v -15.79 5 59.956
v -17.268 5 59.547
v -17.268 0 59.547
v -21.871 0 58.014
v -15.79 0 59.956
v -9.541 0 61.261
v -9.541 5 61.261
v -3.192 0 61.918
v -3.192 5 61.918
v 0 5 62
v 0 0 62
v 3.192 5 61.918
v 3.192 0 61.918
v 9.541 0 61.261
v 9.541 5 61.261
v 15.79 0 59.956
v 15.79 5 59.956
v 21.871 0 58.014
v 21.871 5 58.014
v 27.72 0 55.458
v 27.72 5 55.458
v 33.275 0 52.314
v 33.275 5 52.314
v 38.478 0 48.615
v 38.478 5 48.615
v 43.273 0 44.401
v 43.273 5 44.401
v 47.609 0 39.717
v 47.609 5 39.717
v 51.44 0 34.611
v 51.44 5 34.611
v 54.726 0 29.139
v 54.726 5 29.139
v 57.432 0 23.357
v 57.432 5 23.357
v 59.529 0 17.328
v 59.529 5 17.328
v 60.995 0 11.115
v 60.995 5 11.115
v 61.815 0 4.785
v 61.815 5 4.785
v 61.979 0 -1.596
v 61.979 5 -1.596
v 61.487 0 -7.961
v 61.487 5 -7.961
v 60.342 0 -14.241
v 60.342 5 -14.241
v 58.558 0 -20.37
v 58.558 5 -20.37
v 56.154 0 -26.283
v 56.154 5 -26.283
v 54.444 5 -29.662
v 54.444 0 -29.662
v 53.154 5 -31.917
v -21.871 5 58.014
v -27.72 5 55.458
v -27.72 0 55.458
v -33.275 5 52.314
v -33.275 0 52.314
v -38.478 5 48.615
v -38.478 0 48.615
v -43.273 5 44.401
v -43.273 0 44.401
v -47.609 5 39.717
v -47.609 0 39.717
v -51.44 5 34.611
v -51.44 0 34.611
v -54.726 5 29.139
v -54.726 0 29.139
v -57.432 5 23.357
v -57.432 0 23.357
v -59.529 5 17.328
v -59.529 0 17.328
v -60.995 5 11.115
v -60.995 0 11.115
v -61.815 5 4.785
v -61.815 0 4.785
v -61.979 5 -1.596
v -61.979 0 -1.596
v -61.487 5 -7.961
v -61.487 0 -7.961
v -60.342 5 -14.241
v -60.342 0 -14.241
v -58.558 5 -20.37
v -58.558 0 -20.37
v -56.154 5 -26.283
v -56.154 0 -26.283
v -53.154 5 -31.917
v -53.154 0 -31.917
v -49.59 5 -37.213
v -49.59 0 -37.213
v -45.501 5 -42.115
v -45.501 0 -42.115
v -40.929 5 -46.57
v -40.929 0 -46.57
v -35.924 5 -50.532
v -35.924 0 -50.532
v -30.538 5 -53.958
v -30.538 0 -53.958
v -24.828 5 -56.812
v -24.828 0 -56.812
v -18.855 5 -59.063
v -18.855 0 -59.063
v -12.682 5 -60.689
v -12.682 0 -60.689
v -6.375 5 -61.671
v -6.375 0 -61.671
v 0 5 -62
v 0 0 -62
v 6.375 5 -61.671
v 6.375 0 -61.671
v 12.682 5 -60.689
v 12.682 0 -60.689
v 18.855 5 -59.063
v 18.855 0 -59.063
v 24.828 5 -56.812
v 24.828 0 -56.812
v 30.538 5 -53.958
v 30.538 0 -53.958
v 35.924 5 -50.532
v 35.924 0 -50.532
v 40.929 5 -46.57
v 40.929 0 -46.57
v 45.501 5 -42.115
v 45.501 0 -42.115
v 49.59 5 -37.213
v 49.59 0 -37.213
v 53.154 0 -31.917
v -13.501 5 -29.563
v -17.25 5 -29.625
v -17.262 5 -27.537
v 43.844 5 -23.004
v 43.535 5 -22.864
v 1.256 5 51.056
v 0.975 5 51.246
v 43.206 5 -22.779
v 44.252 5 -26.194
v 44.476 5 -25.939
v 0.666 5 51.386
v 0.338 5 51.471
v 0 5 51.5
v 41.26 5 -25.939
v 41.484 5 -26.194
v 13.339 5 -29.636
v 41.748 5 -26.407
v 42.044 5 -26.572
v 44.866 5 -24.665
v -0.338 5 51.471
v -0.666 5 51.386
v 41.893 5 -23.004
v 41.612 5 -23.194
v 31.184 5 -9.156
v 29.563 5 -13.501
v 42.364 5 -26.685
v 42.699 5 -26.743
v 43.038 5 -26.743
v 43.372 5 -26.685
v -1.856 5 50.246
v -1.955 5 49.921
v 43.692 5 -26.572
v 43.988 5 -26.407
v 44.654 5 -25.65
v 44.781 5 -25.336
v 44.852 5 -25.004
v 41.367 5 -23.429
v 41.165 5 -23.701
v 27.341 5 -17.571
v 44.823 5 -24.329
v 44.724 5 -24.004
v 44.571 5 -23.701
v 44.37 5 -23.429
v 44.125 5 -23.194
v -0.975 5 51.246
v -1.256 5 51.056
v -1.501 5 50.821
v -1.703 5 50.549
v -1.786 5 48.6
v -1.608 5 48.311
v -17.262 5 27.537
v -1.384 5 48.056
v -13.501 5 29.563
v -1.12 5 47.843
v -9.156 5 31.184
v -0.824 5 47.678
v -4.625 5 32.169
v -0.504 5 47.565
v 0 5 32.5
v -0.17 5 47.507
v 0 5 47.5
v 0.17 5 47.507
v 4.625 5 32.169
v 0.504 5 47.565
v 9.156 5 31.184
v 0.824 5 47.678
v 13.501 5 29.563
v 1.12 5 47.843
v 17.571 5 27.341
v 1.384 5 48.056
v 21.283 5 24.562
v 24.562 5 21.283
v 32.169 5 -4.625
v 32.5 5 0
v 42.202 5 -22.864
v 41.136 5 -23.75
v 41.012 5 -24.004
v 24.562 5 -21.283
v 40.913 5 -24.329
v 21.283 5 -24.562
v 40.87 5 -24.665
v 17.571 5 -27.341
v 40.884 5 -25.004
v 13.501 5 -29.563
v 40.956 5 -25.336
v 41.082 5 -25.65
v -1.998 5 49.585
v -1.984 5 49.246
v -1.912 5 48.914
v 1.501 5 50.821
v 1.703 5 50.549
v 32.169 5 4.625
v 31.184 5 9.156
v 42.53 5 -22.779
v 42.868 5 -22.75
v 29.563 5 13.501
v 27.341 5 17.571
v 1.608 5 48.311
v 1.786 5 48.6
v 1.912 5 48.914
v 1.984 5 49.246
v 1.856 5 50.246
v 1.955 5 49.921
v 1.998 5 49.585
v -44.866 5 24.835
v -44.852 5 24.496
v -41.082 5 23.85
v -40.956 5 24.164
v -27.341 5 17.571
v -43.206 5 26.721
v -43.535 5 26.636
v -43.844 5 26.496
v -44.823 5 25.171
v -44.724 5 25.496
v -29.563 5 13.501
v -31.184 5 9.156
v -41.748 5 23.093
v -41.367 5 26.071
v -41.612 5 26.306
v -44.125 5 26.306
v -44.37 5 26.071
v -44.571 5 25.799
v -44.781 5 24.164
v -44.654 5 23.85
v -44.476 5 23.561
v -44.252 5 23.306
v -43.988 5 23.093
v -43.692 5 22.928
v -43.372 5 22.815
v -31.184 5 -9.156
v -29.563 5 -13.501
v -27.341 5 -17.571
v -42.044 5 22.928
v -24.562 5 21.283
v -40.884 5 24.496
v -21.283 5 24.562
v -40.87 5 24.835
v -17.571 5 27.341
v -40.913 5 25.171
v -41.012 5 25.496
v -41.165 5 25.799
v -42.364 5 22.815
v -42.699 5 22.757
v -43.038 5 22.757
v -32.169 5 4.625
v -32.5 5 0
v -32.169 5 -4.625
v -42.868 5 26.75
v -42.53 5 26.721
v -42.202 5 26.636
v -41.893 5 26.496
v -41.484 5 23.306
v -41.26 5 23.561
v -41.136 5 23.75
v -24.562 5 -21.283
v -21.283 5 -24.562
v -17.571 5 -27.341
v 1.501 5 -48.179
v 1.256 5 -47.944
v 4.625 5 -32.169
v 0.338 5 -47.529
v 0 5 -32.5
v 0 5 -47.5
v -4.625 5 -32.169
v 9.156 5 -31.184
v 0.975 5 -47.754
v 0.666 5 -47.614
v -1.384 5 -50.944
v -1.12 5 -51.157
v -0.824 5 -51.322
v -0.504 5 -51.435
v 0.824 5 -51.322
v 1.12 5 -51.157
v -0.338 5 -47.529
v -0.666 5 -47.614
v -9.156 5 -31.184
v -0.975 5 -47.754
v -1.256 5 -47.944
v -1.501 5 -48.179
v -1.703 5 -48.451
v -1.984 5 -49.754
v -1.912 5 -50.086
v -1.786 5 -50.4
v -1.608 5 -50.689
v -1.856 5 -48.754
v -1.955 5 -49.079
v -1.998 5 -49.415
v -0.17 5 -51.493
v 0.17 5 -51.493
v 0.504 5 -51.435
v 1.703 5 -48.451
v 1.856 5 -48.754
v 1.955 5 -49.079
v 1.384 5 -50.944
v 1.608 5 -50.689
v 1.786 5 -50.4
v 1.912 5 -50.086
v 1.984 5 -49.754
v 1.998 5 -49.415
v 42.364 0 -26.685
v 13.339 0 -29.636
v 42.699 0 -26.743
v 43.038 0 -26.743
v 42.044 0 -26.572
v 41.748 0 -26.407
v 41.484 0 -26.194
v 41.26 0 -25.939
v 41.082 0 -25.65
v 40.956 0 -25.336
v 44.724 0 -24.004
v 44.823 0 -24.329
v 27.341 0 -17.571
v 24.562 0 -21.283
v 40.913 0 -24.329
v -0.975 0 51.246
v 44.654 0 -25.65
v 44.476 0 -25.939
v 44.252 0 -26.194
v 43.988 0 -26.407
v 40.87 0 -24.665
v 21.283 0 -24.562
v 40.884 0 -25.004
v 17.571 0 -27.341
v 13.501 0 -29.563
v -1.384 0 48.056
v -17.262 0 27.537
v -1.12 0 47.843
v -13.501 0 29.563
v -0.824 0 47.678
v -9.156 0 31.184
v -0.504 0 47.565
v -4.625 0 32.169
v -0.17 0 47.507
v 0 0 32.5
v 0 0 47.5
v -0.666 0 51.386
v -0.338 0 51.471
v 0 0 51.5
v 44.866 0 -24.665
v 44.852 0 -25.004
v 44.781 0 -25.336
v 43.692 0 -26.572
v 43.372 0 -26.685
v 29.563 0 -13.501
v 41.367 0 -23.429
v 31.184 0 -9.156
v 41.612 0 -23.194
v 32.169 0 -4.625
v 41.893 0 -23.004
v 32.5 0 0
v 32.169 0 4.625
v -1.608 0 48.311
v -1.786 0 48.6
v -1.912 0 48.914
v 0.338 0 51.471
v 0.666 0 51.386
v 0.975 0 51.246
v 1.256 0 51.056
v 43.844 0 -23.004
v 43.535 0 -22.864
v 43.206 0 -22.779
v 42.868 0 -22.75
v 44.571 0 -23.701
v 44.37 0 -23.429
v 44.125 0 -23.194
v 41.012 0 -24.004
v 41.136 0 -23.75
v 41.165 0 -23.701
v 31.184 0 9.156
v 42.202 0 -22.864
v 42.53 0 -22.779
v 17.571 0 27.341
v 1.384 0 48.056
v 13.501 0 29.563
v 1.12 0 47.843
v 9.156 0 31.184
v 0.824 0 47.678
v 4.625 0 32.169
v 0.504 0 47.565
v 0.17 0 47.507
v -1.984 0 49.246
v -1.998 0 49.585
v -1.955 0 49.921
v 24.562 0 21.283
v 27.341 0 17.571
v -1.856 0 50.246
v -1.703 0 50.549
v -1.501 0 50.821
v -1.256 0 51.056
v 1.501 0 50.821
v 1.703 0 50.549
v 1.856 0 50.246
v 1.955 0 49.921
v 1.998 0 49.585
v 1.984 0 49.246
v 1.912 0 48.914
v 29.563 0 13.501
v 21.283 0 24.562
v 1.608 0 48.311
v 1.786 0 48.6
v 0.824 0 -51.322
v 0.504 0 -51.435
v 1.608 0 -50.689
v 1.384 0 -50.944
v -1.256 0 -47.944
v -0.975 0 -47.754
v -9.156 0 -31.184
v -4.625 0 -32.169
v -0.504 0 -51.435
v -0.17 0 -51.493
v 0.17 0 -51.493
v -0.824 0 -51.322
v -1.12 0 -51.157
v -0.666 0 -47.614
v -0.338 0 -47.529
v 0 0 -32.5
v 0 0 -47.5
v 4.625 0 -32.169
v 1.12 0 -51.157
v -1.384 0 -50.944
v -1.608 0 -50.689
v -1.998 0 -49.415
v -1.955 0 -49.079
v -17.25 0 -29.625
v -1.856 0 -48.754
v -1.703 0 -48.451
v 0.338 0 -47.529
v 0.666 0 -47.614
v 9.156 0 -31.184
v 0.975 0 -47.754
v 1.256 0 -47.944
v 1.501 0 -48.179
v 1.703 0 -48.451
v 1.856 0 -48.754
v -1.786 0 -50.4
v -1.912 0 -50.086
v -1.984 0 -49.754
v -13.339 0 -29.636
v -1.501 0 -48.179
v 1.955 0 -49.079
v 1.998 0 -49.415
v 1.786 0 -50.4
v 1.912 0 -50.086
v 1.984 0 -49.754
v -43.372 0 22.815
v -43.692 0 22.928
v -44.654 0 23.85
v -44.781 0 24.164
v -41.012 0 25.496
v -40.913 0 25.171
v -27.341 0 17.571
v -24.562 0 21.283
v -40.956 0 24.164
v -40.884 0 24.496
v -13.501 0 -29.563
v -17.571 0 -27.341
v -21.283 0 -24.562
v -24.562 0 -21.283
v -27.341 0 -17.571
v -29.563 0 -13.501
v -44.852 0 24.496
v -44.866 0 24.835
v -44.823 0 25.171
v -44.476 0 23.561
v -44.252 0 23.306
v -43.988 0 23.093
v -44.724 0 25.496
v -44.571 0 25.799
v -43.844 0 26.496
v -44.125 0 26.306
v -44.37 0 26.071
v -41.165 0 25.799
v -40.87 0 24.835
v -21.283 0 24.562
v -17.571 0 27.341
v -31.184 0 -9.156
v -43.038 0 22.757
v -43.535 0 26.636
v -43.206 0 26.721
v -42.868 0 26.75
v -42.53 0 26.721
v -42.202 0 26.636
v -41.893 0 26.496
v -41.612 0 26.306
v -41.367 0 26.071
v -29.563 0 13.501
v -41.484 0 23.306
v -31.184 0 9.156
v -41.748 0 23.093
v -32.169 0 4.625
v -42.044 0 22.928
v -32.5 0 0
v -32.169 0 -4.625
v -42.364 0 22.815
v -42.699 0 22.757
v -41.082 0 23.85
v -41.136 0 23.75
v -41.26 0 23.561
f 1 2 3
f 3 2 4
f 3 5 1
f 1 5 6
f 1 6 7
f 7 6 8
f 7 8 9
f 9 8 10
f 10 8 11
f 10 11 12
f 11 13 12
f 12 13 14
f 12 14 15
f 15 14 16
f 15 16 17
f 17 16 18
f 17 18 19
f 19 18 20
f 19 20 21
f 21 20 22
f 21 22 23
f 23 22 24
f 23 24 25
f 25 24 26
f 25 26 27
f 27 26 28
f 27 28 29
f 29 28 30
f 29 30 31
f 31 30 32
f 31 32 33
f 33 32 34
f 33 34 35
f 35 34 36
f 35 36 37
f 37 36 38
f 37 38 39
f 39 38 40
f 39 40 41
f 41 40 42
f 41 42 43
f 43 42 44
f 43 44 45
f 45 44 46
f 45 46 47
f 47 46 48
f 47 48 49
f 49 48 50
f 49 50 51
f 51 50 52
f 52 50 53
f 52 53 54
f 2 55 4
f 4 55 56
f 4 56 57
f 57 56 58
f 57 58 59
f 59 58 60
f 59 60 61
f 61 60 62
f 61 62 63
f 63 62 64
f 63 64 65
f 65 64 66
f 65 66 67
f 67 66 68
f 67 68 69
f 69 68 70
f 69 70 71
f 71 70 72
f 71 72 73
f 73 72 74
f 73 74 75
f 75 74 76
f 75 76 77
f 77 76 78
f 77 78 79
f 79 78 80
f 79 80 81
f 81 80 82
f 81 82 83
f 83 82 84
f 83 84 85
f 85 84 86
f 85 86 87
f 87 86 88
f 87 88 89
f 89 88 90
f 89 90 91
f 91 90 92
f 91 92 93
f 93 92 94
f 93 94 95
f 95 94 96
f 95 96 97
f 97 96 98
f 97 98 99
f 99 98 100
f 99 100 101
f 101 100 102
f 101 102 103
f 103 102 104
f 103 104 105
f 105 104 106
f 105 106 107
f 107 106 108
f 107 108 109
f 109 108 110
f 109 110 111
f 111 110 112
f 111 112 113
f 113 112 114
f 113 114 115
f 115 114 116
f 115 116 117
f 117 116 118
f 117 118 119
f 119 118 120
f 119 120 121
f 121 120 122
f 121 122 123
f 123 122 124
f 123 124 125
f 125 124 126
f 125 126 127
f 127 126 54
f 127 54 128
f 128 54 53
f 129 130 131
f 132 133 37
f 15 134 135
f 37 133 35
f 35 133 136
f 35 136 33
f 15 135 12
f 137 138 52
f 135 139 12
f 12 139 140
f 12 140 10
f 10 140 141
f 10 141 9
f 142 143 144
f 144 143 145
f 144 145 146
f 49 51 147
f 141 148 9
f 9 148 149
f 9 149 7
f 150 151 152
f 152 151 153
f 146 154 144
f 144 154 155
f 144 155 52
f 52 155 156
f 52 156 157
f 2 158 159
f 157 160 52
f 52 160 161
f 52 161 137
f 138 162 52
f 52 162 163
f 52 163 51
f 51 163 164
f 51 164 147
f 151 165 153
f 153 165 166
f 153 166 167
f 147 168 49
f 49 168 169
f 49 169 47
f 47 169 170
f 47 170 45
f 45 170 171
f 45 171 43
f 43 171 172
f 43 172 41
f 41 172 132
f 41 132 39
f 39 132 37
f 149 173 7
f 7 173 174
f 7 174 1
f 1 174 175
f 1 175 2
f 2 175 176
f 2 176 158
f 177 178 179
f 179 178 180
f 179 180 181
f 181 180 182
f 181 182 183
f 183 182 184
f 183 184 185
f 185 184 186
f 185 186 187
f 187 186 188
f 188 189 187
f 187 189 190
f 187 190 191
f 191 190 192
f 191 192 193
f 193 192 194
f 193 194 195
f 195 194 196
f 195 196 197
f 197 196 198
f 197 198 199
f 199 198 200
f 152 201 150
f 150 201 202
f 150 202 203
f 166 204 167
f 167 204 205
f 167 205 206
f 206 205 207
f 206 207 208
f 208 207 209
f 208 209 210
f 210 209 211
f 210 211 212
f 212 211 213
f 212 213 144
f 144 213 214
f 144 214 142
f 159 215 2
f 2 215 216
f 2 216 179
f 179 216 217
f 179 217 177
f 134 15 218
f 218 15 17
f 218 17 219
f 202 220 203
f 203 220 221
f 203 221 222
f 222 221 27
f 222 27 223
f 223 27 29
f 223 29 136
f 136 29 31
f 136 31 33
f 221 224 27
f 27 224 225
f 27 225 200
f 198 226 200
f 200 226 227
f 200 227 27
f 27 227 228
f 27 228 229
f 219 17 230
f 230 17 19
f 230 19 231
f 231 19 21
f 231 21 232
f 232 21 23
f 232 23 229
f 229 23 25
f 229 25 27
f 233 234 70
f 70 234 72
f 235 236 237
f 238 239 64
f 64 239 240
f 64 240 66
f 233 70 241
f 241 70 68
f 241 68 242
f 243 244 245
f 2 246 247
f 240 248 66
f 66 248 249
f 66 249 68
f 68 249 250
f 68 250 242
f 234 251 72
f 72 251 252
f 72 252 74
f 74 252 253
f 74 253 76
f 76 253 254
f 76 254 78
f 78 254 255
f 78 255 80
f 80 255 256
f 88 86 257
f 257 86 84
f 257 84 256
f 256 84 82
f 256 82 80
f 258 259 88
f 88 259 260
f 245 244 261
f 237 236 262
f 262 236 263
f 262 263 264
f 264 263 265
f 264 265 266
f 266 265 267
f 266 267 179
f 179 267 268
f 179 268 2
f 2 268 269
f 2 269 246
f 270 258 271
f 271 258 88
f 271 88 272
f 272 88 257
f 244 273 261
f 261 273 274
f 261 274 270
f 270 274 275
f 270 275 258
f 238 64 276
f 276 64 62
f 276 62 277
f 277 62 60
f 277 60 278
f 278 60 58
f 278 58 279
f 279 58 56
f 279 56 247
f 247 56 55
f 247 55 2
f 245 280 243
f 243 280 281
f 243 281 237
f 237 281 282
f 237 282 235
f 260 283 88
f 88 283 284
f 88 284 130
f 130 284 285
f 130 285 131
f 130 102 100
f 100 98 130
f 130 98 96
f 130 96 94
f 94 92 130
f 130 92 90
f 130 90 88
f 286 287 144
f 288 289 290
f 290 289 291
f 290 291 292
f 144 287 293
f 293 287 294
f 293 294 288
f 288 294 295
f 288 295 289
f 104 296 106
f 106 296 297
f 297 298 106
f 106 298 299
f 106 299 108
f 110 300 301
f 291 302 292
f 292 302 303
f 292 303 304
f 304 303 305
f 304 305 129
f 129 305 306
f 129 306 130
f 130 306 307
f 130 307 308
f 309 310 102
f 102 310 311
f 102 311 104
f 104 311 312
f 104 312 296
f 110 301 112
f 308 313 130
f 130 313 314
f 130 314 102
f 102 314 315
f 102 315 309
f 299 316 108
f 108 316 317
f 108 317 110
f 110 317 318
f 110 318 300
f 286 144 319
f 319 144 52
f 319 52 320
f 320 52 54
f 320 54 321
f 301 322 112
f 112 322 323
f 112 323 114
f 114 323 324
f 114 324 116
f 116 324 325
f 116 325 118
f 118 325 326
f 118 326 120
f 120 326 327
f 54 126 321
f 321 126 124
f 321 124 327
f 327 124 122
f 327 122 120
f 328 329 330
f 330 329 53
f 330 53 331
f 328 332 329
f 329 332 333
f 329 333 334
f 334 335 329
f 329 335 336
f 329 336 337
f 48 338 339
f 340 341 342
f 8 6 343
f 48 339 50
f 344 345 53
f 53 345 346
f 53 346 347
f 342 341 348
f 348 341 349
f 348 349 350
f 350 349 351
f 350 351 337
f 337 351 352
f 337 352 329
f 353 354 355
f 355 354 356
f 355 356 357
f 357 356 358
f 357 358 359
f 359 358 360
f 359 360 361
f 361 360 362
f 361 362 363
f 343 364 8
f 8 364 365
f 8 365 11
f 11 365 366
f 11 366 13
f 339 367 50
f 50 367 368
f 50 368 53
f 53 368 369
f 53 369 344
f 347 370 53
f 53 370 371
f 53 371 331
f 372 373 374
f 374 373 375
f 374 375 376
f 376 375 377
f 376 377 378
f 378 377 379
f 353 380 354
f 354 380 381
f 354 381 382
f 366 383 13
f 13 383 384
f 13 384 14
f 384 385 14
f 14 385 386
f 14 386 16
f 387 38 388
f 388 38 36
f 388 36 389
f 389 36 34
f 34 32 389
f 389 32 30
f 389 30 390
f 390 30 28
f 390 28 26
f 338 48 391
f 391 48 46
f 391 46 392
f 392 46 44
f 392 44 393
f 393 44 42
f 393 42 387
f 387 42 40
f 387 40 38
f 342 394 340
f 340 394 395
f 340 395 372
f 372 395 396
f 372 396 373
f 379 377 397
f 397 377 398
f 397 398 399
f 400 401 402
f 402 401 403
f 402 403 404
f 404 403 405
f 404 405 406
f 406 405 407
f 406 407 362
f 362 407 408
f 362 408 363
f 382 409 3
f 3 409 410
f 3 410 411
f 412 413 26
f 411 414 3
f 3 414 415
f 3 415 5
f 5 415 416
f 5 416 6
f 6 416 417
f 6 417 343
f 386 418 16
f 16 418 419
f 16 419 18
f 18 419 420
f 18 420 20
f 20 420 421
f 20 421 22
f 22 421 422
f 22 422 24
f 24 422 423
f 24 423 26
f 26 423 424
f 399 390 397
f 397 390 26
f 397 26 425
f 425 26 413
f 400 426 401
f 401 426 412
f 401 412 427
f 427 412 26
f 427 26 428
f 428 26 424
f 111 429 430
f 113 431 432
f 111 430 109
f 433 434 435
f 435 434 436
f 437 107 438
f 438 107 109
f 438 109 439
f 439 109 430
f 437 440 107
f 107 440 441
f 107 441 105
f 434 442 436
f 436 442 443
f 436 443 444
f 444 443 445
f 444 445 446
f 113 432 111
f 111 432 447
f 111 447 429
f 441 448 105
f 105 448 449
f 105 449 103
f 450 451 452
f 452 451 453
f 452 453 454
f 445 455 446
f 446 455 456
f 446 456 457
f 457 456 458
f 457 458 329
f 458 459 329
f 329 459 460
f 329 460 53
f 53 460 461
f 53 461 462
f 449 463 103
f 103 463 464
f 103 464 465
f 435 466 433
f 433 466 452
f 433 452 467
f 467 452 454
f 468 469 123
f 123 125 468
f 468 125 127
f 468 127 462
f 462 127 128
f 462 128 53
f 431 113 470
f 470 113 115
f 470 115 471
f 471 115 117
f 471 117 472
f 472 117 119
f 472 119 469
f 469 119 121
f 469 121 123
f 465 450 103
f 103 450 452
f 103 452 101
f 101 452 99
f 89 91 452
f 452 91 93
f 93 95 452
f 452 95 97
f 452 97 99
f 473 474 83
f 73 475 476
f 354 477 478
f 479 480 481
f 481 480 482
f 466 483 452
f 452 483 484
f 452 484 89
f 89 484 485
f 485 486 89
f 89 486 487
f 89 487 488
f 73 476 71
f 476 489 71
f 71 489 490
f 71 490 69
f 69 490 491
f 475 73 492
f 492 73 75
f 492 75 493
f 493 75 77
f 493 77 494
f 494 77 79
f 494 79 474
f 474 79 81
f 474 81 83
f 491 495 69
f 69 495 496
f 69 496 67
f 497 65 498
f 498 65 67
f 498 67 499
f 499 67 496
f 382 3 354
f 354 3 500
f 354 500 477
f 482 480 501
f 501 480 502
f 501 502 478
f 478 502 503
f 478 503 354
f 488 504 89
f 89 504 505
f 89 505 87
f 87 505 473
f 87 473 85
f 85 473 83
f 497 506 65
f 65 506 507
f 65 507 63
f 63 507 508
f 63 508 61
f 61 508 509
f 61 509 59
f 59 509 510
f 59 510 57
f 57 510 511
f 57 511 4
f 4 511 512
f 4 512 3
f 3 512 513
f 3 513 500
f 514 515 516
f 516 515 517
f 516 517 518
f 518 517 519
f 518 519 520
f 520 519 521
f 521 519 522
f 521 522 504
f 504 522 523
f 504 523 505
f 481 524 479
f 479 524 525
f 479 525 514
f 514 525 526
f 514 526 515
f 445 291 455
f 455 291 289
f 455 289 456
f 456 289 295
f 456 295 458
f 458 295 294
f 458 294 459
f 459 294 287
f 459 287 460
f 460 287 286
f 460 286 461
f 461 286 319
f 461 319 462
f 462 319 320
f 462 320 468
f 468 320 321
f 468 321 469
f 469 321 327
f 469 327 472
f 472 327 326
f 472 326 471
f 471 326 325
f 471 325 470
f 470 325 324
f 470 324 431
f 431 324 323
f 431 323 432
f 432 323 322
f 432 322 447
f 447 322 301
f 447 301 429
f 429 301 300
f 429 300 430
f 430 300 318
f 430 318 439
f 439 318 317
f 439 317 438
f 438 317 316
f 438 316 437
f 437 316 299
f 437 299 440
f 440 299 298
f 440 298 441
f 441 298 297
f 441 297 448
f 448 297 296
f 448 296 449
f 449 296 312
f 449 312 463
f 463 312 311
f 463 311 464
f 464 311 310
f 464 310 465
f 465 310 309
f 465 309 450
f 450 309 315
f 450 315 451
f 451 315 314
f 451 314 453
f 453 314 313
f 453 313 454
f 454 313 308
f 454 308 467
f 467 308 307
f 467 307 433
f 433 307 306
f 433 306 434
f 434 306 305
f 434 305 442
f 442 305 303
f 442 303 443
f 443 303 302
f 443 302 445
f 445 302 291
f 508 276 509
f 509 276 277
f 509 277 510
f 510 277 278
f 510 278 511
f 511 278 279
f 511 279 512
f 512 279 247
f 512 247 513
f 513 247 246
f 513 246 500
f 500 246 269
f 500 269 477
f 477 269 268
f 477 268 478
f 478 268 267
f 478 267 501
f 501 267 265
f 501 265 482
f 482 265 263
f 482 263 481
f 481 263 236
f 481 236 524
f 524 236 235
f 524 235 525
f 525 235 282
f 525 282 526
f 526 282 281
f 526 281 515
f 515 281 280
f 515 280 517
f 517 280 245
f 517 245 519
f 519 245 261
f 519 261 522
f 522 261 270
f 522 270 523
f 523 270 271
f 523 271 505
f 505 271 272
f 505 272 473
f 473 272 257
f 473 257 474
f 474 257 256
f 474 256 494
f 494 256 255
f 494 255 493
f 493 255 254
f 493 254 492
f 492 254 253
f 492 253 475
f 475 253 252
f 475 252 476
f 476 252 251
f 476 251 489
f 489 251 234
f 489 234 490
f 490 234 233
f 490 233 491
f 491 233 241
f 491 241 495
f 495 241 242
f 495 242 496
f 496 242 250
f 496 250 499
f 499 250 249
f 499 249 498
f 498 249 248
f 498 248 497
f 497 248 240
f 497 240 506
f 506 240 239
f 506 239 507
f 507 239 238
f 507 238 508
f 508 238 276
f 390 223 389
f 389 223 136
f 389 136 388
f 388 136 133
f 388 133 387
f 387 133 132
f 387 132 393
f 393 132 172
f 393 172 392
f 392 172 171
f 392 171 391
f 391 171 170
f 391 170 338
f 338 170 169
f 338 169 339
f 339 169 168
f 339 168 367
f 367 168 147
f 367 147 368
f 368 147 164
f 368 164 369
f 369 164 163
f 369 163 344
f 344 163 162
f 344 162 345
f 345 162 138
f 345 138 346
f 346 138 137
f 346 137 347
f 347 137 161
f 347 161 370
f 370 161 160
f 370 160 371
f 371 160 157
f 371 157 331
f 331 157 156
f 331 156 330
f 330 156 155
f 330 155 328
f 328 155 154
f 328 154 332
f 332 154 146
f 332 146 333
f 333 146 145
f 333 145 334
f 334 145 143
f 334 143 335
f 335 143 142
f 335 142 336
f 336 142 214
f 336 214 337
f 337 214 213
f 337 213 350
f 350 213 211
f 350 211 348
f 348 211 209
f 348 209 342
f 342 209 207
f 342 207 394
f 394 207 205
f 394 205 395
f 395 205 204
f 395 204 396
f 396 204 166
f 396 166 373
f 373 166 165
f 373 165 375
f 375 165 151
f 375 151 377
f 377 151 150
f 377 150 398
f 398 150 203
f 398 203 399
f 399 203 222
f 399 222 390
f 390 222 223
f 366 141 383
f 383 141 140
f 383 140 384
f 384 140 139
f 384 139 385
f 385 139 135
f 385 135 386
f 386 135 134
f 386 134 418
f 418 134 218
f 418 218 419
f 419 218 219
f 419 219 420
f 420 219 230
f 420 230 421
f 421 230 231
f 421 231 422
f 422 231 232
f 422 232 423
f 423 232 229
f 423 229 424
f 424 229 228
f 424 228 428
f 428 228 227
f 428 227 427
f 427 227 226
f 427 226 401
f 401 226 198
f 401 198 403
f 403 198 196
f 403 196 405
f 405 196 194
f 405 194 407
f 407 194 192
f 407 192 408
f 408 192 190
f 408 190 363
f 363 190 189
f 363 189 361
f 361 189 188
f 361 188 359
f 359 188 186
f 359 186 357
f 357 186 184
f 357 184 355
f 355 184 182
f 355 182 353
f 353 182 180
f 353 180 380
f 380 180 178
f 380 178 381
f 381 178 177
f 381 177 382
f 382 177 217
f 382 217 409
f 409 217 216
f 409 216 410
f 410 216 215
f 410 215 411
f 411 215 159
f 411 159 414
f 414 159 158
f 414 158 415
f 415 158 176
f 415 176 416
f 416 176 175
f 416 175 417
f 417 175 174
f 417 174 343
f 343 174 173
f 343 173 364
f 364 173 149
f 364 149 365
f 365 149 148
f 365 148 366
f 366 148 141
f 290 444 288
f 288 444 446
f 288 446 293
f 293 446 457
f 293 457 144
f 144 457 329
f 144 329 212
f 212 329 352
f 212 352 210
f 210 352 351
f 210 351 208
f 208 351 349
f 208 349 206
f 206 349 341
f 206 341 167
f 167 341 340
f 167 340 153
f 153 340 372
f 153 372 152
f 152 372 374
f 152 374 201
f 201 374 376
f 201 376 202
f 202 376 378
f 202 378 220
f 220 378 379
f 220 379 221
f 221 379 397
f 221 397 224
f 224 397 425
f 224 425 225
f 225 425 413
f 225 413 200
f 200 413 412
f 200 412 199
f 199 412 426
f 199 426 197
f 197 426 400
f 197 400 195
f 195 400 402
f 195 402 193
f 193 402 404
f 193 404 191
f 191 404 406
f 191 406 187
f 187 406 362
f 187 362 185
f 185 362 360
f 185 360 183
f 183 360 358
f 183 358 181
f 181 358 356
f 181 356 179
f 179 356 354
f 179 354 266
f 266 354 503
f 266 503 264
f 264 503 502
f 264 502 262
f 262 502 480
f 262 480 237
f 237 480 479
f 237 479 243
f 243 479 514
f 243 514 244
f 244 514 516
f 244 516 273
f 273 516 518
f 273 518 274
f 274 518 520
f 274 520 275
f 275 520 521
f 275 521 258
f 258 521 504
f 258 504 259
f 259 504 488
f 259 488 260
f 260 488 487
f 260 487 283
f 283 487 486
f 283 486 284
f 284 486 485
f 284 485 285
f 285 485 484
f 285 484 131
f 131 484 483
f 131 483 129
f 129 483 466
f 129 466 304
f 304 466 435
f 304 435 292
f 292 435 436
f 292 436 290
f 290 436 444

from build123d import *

# Parameters (mm, degrees)
SKETCH1_R               = 62
BOSS_EXTRUDE1_DEPTH     = 5
SKETCH2_R               = 2
CUT_EXTRUDE1_DEPTH      = 5
CIRPATTERN1_COUNT       = 2
CIRPATTERN1_ANGLE       = 120
MIRROR1_COPY_1_SKETCH_R = 2
MIRROR1_COPY_1_DEPTH    = 5
SKETCH5_R               = 32.5
CUT_EXTRUDE2_DEPTH      = 10


with BuildPart() as part:
    # Sketch1 → Boss-Extrude1 (new body)
    with BuildSketch(Plane(origin=(0, 0, 0), x_dir=(1, 0, 0), z_dir=(0, 1, 0))):
        with Locations(Location((0, 0, 0), (0, 0, 270))):
            Circle(SKETCH1_R)
    extrude(amount=BOSS_EXTRUDE1_DEPTH)

    # Sketch2 → Cut-Extrude1 (cut)
    with BuildSketch(Plane(origin=(0, 5, 0), x_dir=(1, 0, 0), z_dir=(0, 1, 0))):
        with Locations(Location((0, 49.5, 0), (0, 0, 270))):
            Circle(SKETCH2_R)
    cut_extrude1 = extrude(amount=-CUT_EXTRUDE1_DEPTH, mode=Mode.SUBTRACT)

    # CirPattern1: Cut-Extrude1 ×2 about axis
    cirpattern1_axis = Axis((0, 5, 0), (0, 1, 0))
    for i in range(1, CIRPATTERN1_COUNT):
        add(cut_extrude1.rotate(cirpattern1_axis, i * CIRPATTERN1_ANGLE / (CIRPATTERN1_COUNT - 1)), mode=Mode.SUBTRACT)

    # Mirror1: Cut-Extrude1 across plane
    add(cut_extrude1.mirror(Plane(origin=(0, 0, 0), x_dir=(-0.49999999999999806, 0, 0.8660254037844398), z_dir=(-0.8660254037844398, 0, -0.49999999999999806))), mode=Mode.SUBTRACT)

    # Mirror1 copy 1 sketch → Mirror1 copy 1 (cut)
    with BuildSketch(Plane(origin=(0, 5, 0), x_dir=(1, 0, 0), z_dir=(0, 1, 0))):
        with Locations((0, -49.5)):
            Circle(MIRROR1_COPY_1_SKETCH_R)
    extrude(amount=-MIRROR1_COPY_1_DEPTH, mode=Mode.SUBTRACT)

    # Sketch5 → Cut-Extrude2 (cut)
    with BuildSketch(Plane.XZ):
        with Locations(Location((0, 0, 0), (0, 0, 270))):
            Circle(SKETCH5_R)
    extrude(amount=-CUT_EXTRUDE2_DEPTH, mode=Mode.SUBTRACT)


solid = part.part
